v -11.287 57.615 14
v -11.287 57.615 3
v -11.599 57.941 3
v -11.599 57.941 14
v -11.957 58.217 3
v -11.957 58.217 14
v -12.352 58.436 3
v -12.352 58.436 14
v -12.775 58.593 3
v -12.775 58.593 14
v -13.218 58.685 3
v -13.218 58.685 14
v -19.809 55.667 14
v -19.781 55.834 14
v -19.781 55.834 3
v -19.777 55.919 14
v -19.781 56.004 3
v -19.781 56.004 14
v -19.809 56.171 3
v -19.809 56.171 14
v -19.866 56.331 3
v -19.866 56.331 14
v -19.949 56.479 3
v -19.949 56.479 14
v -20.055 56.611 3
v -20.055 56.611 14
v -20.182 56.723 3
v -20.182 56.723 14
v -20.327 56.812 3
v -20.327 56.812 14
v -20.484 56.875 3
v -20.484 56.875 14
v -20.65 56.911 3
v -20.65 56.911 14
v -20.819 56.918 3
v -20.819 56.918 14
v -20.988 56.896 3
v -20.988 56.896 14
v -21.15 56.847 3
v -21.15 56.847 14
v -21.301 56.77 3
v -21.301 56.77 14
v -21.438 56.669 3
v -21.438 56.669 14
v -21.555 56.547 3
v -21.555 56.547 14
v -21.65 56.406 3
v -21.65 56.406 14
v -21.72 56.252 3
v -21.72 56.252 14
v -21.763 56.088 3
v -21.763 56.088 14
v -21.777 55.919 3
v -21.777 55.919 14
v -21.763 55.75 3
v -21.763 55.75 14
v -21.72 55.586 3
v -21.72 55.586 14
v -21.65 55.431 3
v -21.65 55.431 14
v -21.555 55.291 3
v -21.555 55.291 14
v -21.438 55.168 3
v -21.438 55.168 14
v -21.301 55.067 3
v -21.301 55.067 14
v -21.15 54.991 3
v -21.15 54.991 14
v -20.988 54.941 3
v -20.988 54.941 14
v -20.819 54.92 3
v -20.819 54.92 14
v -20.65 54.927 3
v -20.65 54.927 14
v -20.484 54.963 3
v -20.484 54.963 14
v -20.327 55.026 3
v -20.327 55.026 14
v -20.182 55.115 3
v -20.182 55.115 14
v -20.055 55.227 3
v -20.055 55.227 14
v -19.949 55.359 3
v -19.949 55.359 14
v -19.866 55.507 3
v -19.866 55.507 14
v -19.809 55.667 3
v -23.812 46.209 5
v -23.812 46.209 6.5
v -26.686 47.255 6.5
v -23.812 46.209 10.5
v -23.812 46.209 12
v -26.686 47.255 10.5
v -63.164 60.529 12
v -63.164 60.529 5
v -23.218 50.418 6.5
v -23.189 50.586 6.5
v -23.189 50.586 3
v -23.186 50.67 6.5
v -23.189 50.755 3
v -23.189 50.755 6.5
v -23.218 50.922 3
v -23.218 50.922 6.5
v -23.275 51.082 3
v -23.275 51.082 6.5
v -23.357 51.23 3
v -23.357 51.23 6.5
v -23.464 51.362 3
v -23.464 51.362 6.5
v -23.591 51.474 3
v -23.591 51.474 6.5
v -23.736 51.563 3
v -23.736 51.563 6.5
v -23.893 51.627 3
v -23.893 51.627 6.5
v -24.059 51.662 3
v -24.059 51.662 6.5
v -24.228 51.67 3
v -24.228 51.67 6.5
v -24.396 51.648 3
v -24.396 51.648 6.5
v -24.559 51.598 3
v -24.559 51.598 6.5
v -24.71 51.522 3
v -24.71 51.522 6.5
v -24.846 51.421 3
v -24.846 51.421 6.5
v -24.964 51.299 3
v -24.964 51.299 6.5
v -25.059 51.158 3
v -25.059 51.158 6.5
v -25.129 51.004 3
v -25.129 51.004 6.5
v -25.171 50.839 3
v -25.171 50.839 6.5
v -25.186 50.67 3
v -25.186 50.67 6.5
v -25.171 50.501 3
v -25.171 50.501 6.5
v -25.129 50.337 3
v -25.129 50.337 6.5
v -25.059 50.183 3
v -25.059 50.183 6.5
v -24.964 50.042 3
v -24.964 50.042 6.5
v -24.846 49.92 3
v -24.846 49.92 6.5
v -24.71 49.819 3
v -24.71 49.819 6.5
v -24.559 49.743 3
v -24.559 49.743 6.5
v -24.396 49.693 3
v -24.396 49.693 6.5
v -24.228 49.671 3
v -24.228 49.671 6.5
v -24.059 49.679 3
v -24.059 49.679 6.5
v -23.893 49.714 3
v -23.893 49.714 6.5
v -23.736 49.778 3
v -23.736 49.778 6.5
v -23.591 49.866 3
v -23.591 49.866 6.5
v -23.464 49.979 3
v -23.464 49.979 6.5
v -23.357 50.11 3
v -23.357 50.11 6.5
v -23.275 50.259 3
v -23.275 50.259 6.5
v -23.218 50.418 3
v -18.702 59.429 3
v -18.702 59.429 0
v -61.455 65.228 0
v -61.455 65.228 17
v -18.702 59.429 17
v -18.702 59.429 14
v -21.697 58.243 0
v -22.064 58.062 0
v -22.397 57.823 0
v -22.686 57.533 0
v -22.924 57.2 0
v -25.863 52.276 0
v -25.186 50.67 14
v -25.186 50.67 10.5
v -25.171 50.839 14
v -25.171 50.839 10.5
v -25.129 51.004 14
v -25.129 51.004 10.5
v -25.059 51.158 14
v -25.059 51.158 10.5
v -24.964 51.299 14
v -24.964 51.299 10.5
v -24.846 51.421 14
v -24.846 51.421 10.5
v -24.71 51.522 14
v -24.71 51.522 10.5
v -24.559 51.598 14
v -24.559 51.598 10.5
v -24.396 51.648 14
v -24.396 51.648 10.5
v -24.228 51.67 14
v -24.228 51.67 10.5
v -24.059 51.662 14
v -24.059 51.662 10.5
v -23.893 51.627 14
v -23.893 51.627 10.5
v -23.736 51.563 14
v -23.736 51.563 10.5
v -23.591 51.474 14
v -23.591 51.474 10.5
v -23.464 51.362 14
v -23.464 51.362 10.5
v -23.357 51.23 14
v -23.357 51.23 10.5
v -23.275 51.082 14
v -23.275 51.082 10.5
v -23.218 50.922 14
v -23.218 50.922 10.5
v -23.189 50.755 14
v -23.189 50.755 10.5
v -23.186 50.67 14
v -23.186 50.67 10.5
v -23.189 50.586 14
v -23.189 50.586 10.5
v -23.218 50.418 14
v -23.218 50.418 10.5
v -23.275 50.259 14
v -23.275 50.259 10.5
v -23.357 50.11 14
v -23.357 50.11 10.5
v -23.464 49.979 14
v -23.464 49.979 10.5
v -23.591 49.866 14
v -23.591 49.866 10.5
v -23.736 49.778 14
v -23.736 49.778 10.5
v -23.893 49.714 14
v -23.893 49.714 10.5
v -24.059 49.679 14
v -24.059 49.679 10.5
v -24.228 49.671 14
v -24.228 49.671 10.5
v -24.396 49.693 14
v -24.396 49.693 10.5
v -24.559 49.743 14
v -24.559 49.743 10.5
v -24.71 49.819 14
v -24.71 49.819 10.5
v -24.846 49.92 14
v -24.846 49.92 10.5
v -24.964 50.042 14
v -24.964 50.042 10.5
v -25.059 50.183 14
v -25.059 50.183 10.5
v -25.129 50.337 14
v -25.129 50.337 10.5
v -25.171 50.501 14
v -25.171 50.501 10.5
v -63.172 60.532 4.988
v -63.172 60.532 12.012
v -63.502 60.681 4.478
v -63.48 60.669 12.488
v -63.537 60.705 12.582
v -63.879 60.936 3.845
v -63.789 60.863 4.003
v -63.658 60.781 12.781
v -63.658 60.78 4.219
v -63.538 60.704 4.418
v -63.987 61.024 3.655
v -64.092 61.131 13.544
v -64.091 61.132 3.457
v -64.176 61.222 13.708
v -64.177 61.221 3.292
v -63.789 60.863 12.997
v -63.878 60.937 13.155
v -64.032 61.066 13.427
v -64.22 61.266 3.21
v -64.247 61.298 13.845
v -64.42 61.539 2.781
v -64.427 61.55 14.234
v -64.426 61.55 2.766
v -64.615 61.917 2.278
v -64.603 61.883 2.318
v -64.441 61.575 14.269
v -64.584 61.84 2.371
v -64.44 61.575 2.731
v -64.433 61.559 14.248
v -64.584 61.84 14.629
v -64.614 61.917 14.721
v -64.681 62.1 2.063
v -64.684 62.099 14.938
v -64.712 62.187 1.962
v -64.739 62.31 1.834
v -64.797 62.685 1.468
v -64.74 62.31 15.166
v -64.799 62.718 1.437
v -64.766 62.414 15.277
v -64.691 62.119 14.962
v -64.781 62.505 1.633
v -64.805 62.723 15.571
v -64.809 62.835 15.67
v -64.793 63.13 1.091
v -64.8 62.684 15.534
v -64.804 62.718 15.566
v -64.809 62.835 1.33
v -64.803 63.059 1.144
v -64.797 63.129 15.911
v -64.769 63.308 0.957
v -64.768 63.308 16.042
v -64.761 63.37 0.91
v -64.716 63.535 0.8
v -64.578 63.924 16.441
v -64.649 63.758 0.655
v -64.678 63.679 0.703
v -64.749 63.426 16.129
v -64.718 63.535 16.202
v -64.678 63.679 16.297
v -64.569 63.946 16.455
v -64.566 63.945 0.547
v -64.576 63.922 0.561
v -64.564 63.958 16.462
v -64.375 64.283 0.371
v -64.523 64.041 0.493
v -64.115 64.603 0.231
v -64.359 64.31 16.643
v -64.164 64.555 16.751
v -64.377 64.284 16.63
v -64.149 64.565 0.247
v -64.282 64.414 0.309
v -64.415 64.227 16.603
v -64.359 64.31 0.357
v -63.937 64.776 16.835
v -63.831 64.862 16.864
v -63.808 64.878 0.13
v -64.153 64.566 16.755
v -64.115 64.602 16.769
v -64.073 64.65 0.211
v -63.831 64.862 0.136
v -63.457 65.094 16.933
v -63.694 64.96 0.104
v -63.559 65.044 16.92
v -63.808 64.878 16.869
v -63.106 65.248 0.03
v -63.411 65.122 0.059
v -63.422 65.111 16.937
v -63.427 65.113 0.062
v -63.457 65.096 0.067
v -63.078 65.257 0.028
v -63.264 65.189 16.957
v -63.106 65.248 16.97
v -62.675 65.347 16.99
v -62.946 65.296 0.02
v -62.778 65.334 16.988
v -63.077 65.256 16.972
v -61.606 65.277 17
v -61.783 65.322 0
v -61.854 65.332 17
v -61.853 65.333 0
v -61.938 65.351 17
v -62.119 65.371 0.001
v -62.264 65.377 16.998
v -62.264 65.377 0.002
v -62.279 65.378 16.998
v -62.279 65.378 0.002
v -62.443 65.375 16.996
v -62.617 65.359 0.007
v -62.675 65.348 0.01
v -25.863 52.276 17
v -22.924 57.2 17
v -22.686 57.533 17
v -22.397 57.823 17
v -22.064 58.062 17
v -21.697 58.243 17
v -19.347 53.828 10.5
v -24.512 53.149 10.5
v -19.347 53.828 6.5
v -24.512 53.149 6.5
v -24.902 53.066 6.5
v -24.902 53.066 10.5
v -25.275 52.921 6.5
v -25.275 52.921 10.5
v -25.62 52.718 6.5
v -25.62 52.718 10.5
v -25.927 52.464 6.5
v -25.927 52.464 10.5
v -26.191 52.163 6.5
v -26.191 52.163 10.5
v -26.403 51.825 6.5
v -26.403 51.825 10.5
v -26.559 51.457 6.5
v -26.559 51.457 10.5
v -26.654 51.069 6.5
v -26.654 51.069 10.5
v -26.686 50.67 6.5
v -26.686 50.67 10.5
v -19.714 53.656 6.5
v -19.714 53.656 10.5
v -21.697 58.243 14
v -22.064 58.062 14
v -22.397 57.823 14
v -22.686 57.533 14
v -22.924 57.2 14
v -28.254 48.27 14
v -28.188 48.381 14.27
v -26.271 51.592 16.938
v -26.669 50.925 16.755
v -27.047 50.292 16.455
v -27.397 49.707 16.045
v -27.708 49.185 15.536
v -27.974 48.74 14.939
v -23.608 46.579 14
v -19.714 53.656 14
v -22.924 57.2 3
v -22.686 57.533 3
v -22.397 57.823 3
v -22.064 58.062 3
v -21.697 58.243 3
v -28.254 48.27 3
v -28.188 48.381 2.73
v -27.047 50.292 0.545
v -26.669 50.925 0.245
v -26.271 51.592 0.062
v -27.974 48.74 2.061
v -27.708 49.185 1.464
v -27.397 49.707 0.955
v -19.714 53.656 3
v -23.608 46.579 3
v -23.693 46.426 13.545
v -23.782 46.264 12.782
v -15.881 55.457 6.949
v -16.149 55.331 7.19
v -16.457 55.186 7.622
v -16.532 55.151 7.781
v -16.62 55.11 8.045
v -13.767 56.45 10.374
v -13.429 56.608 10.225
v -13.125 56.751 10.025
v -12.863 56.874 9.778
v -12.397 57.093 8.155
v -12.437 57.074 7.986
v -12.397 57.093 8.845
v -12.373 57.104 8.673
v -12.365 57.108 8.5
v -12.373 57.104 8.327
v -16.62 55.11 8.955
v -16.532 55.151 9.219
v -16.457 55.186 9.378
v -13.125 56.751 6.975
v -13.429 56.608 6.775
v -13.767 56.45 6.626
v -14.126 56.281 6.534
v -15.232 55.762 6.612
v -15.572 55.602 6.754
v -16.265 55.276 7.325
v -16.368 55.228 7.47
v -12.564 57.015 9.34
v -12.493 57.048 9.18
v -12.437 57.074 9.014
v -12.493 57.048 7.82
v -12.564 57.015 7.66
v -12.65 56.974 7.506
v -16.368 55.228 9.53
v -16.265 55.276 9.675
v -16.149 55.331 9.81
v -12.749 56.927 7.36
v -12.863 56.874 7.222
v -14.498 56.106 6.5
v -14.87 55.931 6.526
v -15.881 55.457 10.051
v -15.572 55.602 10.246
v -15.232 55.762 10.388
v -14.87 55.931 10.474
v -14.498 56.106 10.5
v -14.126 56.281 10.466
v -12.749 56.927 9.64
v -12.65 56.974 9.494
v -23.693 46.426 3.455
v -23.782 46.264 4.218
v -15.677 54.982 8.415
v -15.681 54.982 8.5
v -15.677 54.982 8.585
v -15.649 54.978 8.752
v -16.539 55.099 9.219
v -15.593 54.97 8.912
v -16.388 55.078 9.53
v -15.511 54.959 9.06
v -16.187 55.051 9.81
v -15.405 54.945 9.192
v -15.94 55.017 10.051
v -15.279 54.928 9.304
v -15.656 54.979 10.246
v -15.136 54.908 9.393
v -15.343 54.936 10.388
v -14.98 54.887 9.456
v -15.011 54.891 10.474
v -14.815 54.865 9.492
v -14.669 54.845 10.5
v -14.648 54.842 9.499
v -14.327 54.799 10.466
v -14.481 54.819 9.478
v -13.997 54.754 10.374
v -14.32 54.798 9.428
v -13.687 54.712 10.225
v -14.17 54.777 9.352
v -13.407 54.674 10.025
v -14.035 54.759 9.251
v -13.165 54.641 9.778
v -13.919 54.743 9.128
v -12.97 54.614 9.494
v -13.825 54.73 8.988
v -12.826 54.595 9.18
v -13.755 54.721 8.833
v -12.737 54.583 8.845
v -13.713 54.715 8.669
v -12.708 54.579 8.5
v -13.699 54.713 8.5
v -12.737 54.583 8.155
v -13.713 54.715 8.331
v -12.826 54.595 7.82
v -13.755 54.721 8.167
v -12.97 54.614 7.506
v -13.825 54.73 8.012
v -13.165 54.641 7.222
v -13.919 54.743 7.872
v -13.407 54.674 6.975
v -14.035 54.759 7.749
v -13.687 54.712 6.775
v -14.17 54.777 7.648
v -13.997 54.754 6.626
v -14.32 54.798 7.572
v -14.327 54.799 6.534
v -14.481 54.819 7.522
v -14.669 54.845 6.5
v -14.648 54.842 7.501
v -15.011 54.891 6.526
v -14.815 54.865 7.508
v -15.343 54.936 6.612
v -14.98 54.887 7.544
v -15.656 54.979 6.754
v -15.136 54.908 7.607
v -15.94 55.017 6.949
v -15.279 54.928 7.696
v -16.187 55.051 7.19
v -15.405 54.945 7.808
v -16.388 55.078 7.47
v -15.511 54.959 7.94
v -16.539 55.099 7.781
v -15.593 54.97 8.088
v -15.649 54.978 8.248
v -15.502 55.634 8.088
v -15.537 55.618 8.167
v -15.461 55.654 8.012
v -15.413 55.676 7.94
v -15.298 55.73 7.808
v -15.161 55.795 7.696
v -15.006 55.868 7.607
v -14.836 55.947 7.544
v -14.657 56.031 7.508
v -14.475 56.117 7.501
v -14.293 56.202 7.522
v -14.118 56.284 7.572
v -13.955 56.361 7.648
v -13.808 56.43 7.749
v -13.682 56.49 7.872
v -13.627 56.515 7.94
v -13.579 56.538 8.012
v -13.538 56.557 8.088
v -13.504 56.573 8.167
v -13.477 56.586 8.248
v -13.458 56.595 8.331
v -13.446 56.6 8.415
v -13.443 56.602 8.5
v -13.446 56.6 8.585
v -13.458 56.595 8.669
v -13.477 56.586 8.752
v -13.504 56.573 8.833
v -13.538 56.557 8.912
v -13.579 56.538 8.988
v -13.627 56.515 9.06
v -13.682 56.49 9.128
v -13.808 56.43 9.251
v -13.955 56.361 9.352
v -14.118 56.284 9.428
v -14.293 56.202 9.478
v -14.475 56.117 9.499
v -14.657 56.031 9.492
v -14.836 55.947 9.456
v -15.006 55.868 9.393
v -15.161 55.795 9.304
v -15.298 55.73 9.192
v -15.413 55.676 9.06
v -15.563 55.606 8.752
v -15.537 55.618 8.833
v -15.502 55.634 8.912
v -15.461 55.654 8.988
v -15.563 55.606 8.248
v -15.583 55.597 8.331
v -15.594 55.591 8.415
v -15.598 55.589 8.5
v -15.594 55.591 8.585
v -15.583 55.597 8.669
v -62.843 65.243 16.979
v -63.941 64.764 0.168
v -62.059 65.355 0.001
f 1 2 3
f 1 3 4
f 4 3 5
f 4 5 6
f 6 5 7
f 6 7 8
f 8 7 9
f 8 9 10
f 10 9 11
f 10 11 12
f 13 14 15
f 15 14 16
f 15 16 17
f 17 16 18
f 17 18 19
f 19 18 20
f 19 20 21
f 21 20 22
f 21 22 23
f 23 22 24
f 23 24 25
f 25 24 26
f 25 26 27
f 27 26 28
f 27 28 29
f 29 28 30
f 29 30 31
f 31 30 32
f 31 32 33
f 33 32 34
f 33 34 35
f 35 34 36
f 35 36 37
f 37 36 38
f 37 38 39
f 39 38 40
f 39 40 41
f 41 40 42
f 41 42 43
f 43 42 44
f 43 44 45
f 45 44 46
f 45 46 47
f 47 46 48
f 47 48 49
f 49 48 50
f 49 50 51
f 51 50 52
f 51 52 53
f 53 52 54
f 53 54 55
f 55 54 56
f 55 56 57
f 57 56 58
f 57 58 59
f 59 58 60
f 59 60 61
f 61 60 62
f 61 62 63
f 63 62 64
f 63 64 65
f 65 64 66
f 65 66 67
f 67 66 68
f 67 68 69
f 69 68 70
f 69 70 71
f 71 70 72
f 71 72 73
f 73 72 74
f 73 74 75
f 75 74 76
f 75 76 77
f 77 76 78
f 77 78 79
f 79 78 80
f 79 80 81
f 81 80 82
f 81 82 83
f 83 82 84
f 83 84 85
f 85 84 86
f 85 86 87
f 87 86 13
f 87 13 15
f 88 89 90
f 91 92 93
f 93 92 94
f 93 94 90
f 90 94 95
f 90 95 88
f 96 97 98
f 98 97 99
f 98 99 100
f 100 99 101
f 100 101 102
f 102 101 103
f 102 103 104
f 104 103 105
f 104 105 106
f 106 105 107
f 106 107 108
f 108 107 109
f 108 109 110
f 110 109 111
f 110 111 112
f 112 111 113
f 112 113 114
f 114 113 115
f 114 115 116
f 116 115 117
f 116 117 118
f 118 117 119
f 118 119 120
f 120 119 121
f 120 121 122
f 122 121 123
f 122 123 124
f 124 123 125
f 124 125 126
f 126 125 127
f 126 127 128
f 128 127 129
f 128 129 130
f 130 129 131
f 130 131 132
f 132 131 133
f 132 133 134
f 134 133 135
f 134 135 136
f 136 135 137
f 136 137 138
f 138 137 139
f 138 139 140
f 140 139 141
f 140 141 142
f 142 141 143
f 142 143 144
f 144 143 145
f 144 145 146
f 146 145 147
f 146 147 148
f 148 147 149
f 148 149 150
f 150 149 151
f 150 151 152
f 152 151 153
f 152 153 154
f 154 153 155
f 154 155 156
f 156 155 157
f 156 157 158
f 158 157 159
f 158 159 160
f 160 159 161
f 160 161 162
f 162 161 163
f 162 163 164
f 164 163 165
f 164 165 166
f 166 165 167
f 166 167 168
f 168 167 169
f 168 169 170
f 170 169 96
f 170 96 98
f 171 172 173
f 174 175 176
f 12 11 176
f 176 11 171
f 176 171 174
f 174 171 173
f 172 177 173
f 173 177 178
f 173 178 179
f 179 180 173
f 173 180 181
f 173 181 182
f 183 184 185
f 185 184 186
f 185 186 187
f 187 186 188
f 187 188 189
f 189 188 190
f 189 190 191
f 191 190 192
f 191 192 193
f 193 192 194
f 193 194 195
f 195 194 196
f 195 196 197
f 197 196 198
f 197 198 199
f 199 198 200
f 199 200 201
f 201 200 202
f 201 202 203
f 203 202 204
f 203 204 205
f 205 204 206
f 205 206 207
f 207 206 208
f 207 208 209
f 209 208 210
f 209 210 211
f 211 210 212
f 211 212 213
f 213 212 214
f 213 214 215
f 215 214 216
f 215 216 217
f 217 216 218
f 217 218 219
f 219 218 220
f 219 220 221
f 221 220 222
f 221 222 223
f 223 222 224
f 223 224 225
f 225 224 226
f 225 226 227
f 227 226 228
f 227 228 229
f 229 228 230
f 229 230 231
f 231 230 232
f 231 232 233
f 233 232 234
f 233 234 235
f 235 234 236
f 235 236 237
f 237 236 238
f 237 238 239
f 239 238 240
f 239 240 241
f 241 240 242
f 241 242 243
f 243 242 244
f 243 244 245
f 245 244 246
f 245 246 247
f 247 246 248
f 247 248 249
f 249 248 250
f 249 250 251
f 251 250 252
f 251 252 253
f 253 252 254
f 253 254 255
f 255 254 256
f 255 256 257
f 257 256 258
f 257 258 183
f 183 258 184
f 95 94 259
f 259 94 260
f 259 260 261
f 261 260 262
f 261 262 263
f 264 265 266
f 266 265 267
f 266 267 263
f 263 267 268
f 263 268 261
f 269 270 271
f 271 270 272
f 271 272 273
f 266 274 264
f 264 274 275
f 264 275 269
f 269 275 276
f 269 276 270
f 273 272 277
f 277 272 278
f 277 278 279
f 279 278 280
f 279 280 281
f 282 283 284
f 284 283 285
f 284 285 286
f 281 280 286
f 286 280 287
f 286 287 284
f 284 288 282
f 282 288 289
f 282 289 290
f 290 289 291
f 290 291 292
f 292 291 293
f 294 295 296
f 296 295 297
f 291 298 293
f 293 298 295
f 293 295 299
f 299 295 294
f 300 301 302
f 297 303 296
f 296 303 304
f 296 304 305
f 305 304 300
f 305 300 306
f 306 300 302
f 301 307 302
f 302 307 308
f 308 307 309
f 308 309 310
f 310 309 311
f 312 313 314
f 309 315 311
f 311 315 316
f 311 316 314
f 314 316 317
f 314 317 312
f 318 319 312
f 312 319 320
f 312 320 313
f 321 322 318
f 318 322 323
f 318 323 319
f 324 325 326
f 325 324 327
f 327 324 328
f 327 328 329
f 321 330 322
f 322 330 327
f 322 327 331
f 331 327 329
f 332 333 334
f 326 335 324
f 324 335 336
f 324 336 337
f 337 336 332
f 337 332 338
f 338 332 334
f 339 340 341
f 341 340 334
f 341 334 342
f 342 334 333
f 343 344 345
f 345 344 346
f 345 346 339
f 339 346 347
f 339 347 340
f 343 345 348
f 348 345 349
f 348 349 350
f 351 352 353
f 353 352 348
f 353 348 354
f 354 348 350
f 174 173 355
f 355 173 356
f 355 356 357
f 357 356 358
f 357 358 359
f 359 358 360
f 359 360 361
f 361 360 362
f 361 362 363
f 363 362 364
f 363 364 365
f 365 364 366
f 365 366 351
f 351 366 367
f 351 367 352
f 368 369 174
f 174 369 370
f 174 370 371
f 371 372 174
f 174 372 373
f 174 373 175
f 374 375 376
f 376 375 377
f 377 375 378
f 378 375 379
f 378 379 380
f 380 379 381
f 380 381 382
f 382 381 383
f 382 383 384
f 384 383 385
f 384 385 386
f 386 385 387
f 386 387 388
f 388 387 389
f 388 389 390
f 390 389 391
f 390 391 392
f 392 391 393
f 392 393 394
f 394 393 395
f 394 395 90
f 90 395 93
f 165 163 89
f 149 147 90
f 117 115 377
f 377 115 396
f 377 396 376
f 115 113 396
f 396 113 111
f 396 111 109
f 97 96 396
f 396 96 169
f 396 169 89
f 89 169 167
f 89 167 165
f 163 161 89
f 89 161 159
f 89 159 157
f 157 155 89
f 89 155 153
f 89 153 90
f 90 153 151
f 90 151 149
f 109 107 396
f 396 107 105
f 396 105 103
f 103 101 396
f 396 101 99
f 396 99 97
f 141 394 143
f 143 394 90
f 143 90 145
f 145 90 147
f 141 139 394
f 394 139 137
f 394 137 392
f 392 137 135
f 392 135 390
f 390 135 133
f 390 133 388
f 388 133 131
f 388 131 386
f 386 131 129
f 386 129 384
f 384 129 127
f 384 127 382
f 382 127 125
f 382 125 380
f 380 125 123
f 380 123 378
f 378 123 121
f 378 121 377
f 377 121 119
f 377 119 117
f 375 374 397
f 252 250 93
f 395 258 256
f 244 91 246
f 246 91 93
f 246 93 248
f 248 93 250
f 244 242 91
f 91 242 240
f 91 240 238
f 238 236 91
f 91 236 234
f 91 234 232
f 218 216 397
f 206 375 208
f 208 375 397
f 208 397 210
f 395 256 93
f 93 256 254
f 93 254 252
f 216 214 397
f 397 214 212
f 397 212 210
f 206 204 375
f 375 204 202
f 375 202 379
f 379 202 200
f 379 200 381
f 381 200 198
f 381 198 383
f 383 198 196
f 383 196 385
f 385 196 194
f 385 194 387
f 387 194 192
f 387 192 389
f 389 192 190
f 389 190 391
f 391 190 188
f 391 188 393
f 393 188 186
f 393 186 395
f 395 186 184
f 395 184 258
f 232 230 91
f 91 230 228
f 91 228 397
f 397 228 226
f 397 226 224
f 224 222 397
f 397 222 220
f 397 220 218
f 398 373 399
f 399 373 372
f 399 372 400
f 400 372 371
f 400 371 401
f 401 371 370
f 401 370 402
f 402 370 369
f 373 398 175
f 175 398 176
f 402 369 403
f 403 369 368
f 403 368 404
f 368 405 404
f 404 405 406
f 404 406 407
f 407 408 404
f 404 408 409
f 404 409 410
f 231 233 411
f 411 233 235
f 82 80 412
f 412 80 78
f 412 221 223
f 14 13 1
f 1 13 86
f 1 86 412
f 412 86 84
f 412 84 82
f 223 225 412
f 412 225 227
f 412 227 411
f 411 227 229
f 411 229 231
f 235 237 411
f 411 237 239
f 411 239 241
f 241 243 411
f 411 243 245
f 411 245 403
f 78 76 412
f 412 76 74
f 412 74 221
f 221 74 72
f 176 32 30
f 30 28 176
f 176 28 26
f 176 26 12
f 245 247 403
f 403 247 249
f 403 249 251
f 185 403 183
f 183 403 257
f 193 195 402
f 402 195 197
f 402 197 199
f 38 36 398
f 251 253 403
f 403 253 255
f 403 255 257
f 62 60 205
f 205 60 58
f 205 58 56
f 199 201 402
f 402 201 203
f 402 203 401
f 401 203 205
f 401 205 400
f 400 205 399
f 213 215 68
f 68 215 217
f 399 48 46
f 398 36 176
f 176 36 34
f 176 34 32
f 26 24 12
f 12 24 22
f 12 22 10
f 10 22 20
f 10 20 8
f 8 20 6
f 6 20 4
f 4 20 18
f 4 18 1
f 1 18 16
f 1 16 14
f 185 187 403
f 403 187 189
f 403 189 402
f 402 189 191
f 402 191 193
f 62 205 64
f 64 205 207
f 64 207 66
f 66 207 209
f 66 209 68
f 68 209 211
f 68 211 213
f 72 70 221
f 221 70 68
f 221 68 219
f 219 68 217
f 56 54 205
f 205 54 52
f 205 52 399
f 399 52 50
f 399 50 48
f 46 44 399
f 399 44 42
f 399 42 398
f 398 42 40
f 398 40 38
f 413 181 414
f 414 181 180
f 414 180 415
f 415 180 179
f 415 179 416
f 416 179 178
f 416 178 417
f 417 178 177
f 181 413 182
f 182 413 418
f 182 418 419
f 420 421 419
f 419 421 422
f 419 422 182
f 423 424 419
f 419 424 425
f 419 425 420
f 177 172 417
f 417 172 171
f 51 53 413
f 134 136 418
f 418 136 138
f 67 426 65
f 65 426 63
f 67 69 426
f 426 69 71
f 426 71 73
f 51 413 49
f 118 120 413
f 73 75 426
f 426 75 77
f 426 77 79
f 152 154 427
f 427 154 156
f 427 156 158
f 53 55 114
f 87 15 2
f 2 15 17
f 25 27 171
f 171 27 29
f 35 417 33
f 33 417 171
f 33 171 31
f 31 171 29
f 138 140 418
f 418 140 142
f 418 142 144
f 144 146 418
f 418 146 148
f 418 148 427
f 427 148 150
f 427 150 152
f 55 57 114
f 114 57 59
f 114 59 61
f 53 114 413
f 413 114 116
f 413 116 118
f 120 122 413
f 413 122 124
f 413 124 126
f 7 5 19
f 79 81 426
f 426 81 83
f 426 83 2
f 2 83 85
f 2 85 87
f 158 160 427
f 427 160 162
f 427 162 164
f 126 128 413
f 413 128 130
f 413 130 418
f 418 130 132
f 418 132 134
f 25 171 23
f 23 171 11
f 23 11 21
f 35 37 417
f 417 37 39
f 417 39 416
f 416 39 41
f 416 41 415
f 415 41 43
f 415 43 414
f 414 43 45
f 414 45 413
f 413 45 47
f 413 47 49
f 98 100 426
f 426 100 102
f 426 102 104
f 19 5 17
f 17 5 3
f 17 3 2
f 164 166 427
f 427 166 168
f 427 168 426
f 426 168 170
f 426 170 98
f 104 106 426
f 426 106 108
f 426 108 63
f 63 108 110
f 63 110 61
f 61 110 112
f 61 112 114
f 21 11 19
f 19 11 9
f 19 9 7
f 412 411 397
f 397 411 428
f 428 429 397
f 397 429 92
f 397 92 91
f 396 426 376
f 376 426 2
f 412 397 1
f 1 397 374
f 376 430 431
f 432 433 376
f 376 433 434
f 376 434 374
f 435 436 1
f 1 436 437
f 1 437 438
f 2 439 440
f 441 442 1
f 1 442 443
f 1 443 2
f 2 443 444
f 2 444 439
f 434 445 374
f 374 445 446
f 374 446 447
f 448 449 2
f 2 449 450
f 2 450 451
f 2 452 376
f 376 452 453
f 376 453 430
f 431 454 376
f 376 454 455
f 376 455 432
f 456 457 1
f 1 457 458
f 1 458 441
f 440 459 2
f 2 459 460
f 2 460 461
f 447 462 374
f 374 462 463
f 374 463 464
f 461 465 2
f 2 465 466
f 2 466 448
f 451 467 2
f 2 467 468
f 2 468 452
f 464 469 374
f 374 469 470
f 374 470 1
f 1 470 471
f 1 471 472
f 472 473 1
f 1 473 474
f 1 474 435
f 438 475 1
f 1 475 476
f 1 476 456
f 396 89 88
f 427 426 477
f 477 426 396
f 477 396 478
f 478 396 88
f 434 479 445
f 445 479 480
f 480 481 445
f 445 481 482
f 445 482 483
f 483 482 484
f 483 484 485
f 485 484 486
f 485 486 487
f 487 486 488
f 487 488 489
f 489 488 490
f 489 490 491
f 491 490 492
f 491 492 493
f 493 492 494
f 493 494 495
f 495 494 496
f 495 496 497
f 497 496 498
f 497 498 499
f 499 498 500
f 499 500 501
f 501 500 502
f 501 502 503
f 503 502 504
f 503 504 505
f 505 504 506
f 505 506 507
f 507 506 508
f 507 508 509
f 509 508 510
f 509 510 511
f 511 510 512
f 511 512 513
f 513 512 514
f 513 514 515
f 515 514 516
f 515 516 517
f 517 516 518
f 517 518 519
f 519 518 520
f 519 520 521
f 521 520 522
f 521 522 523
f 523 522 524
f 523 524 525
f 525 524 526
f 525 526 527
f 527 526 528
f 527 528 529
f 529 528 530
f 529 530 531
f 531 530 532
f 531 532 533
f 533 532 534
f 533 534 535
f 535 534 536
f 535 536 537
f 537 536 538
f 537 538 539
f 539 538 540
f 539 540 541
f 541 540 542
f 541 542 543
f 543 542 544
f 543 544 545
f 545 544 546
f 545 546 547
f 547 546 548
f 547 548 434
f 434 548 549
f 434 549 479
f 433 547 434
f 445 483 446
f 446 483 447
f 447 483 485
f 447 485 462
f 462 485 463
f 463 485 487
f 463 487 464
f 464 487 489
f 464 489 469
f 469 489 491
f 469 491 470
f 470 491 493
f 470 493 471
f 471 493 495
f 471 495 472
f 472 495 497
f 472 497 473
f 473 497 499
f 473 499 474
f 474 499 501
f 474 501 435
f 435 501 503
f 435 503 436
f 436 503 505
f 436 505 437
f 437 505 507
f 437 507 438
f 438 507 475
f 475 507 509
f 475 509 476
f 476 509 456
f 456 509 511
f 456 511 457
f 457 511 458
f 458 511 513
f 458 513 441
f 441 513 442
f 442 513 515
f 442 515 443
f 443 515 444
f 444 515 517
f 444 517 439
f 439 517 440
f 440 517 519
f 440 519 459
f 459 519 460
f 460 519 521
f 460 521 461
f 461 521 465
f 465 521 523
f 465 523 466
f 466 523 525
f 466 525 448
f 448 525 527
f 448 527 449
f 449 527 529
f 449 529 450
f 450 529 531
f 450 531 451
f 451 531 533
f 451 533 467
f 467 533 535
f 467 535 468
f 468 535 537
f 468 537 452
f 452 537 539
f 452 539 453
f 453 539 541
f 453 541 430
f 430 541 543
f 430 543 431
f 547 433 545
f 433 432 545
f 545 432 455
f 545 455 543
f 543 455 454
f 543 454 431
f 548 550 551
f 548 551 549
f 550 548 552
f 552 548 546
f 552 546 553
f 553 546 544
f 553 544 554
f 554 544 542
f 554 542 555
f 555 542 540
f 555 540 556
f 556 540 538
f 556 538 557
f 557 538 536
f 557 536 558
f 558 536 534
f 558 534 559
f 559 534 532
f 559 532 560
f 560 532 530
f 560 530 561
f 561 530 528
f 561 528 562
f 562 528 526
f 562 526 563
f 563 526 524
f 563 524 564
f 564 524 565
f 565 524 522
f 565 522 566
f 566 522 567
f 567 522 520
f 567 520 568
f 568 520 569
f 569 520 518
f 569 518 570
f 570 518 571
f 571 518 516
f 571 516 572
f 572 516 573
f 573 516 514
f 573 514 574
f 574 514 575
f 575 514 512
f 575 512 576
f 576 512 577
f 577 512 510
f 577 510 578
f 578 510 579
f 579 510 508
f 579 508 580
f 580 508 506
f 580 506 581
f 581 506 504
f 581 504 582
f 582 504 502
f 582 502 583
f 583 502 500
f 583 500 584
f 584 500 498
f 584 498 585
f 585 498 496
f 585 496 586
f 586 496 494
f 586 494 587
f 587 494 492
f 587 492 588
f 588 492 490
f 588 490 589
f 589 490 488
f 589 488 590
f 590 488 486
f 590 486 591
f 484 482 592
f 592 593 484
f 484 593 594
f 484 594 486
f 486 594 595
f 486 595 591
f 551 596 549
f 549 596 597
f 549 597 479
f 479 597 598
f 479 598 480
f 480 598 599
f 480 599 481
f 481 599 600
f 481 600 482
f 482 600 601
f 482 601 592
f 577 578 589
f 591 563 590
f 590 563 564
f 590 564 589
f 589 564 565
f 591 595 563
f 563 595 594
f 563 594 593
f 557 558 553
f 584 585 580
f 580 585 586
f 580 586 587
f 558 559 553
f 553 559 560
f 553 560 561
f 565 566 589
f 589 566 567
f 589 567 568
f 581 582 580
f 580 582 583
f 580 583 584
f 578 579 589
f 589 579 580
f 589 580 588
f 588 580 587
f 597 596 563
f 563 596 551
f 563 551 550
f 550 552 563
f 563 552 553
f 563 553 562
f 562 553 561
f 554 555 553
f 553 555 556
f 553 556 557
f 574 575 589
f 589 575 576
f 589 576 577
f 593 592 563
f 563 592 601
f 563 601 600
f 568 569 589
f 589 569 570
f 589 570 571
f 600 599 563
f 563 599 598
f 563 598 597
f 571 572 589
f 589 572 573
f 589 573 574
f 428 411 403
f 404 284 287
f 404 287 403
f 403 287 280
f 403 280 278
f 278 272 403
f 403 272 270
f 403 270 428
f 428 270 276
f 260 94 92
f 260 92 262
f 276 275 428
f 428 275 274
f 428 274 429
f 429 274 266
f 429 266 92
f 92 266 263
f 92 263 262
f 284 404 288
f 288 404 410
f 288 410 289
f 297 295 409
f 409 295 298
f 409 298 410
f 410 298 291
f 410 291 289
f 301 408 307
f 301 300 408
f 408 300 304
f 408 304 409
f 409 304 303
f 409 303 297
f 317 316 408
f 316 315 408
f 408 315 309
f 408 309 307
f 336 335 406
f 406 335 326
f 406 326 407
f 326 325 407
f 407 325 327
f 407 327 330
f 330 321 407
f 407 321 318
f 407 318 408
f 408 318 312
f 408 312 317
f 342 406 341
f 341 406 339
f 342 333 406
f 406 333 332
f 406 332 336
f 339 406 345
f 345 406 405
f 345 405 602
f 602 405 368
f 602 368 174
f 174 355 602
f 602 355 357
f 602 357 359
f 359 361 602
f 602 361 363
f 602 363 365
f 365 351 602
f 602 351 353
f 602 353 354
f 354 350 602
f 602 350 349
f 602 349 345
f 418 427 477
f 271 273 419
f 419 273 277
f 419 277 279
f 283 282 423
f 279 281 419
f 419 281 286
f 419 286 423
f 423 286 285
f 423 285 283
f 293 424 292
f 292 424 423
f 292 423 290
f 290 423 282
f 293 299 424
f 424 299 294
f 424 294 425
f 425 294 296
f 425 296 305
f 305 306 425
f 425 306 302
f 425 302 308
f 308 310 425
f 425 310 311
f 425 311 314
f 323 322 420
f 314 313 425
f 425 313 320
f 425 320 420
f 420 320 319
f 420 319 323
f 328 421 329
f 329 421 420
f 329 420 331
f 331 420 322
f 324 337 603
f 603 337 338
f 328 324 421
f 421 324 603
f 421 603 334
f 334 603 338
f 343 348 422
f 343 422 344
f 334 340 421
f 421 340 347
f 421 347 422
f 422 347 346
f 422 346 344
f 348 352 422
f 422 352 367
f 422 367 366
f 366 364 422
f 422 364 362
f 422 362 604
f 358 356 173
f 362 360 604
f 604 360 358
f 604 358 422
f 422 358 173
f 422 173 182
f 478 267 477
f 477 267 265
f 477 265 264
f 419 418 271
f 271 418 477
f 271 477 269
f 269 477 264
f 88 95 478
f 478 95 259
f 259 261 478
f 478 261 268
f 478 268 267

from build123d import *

# Parameters (mm, degrees)
SKETCH1_R           = 1
BOSS_EXTRUDE1_DEPTH = 17
CUT_EXTRUDE1_DEPTH  = 2
CUT_EXTRUDE2_DEPTH  = 3
CUT_EXTRUDE3_DEPTH  = 94.116031007
SKETCH5_R           = 2
SKETCH5_R_2         = 1
BOSS_EXTRUDE2_DEPTH = 3
FILLET1_START       = -84
FILLET1_DEPTH       = 46.103039735


with BuildPart() as part:
    # Sketch1 → Boss-Extrude1 (new body)
    with BuildSketch(Plane.XY):
        with BuildLine():
            Line((-12.561010035, 47.693103213), (-11.089724337, 53.437595852))
            Line((-11.089724337, 53.437595852), (-10.698403568, 54.965469926))
            ThreePointArc((-10.698403568, 54.965469926), (-11.120792406, 57.392279847), (-13.217767636, 58.684763351))
            Line((-13.217767636, 58.684763351), (-61.454584691, 65.227631075))
            ThreePointArc((-61.454584691, 65.227631075), (-64.658763624, 63.733229066), (-63.164361616, 60.529050133))
            Line((-63.164361616, 60.529050133), (-50.545614142, 55.937186437))
            Line((-50.545614142, 55.937186437), (-41.148452258, 52.517632588))
            Line((-41.148452258, 52.517632588), (-25.57571408, 46.850834736))
            Line((-25.57571408, 46.850834736), (-16.767387766, 43.645553554))
            ThreePointArc((-16.767387766, 43.645553554), (-14.456681284, 43.934299556), (-13.048668569, 45.789087654))
            Line((-13.048668569, 45.789087654), (-12.561010035, 47.693103213))
        make_face()
        with BuildLine():
            ThreePointArc((-23.185784758, 50.67045315), (-23.612180096, 49.851320869), (-24.527740143, 49.730736961))
            ThreePointArc((-24.527740143, 49.730736961), (-24.759389419, 51.48958543), (-23.185784758, 50.67045315))
        make_face(mode=Mode.SUBTRACT)
        with Locations((-20.777036606, 55.918720799)):
            Circle(SKETCH1_R, mode=Mode.SUBTRACT)
    extrude(amount=BOSS_EXTRUDE1_DEPTH)

    # Sketch2 → Cut-Extrude1 (cut, symmetric)
    with BuildSketch(Plane.XY.offset(8.5)):
        with BuildLine():
            Line((-24.51171166, 53.149116429), (-10.698403568, 54.965469926))
            Line((-10.698403568, 54.965469926), (-6.677815913, 55.49414911))
            Line((-6.677815913, 55.49414911), (-11.161264417, 41.454335722))
            Line((-11.161264417, 41.454335722), (-26.685784758, 44.980900868))
            Line((-26.685784758, 44.980900868), (-26.685784758, 47.009961102))
            Line((-26.685784758, 47.009961102), (-26.685784758, 50.67045315))
            ThreePointArc((-26.685784758, 50.67045315), (-26.065255063, 52.318965016), (-24.51171166, 53.149116429))
        make_face()
    extrude(amount=CUT_EXTRUDE1_DEPTH, both=True, mode=Mode.SUBTRACT)

    # Sketch3 → Cut-Extrude2 (cut)
    with BuildSketch(Plane.XY.offset(17)):
        with BuildLine():
            Line((-22.923684774, 57.200087897), (-29.137926811, 46.789494935))
            Line((-29.137926811, 46.789494935), (-12.362720011, 40.045691857))
            Line((-12.362720011, 40.045691857), (-5.826442747, 57.795582407))
            Line((-5.826442747, 57.795582407), (-16.920124342, 60.134250419))
            Line((-16.920124342, 60.134250419), (-21.697201499, 58.243220007))
            ThreePointArc((-21.697201499, 58.243220007), (-22.396717667, 57.823092942), (-22.923684774, 57.200087897))
        make_face()
    cut_extrude2 = extrude(amount=-CUT_EXTRUDE2_DEPTH, mode=Mode.SUBTRACT)

    # Mirror1: Cut-Extrude2 across plane
    add(cut_extrude2.mirror(Plane.XY.offset(8.5)), mode=Mode.SUBTRACT)

    # Sketch4 → Cut-Extrude3 (cut, through all)
    with BuildSketch(Plane.XY.offset(14)):
        Polygon((-19.714121893, 53.655932185), (-10.079835615, 58.181509414), (-11.289444582, 40.128166079), (-24.564448807, 44.84188173), (-23.812093713, 46.209067053), (-22.172973595, 49.187688427), align=None)
    extrude(amount=-CUT_EXTRUDE3_DEPTH, mode=Mode.SUBTRACT)

    # Sketch5 → Boss-Extrude2 (add)
    with BuildSketch(Plane(origin=(7.039796384, 51.900387509, 0), x_dir=(0.9909258444107709, -0.13440971273981925, 0), z_dir=(0.13440971273981922, 0.9909258444107708, 0))):
        with Locations((-21.928372674, -8.5)):
            Circle(SKETCH5_R)
        with Locations(Location((-21.928372674, -8.5, 0), (0, 0, 180))):
            Circle(SKETCH5_R_2, mode=Mode.SUBTRACT)
    extrude(amount=BOSS_EXTRUDE2_DEPTH)

    # Fillet1: read off the stored shape, not the designer's step
    # Fillet1 outline → Fillet1 (cut)
    with BuildSketch(Plane(origin=(0, 0, 0), x_dir=(0.34195538491818894, 0.939716188391715, 0), z_dir=(0.939716188391715, -0.341955384918189, 0)).offset(FILLET1_START)):
        with BuildLine():
            ThreePointArc((35.280734689, 12), (36.74520179, 15.535534913), (40.280737537, 17))
            Line((40.280737537, 17), (35.280734689, 17))
            Line((35.280734689, 17), (35.280734689, 12))
        make_face()
        with BuildLine():
            Line((35.280734689, 5), (35.280734689, 0))
            Line((35.280734689, 0), (40.280737537, 0))
            ThreePointArc((40.280737537, 0), (36.74520179, 1.464465087), (35.280734689, 5))
        make_face()
    extrude(amount=FILLET1_DEPTH, mode=Mode.SUBTRACT)


solid = part.part
